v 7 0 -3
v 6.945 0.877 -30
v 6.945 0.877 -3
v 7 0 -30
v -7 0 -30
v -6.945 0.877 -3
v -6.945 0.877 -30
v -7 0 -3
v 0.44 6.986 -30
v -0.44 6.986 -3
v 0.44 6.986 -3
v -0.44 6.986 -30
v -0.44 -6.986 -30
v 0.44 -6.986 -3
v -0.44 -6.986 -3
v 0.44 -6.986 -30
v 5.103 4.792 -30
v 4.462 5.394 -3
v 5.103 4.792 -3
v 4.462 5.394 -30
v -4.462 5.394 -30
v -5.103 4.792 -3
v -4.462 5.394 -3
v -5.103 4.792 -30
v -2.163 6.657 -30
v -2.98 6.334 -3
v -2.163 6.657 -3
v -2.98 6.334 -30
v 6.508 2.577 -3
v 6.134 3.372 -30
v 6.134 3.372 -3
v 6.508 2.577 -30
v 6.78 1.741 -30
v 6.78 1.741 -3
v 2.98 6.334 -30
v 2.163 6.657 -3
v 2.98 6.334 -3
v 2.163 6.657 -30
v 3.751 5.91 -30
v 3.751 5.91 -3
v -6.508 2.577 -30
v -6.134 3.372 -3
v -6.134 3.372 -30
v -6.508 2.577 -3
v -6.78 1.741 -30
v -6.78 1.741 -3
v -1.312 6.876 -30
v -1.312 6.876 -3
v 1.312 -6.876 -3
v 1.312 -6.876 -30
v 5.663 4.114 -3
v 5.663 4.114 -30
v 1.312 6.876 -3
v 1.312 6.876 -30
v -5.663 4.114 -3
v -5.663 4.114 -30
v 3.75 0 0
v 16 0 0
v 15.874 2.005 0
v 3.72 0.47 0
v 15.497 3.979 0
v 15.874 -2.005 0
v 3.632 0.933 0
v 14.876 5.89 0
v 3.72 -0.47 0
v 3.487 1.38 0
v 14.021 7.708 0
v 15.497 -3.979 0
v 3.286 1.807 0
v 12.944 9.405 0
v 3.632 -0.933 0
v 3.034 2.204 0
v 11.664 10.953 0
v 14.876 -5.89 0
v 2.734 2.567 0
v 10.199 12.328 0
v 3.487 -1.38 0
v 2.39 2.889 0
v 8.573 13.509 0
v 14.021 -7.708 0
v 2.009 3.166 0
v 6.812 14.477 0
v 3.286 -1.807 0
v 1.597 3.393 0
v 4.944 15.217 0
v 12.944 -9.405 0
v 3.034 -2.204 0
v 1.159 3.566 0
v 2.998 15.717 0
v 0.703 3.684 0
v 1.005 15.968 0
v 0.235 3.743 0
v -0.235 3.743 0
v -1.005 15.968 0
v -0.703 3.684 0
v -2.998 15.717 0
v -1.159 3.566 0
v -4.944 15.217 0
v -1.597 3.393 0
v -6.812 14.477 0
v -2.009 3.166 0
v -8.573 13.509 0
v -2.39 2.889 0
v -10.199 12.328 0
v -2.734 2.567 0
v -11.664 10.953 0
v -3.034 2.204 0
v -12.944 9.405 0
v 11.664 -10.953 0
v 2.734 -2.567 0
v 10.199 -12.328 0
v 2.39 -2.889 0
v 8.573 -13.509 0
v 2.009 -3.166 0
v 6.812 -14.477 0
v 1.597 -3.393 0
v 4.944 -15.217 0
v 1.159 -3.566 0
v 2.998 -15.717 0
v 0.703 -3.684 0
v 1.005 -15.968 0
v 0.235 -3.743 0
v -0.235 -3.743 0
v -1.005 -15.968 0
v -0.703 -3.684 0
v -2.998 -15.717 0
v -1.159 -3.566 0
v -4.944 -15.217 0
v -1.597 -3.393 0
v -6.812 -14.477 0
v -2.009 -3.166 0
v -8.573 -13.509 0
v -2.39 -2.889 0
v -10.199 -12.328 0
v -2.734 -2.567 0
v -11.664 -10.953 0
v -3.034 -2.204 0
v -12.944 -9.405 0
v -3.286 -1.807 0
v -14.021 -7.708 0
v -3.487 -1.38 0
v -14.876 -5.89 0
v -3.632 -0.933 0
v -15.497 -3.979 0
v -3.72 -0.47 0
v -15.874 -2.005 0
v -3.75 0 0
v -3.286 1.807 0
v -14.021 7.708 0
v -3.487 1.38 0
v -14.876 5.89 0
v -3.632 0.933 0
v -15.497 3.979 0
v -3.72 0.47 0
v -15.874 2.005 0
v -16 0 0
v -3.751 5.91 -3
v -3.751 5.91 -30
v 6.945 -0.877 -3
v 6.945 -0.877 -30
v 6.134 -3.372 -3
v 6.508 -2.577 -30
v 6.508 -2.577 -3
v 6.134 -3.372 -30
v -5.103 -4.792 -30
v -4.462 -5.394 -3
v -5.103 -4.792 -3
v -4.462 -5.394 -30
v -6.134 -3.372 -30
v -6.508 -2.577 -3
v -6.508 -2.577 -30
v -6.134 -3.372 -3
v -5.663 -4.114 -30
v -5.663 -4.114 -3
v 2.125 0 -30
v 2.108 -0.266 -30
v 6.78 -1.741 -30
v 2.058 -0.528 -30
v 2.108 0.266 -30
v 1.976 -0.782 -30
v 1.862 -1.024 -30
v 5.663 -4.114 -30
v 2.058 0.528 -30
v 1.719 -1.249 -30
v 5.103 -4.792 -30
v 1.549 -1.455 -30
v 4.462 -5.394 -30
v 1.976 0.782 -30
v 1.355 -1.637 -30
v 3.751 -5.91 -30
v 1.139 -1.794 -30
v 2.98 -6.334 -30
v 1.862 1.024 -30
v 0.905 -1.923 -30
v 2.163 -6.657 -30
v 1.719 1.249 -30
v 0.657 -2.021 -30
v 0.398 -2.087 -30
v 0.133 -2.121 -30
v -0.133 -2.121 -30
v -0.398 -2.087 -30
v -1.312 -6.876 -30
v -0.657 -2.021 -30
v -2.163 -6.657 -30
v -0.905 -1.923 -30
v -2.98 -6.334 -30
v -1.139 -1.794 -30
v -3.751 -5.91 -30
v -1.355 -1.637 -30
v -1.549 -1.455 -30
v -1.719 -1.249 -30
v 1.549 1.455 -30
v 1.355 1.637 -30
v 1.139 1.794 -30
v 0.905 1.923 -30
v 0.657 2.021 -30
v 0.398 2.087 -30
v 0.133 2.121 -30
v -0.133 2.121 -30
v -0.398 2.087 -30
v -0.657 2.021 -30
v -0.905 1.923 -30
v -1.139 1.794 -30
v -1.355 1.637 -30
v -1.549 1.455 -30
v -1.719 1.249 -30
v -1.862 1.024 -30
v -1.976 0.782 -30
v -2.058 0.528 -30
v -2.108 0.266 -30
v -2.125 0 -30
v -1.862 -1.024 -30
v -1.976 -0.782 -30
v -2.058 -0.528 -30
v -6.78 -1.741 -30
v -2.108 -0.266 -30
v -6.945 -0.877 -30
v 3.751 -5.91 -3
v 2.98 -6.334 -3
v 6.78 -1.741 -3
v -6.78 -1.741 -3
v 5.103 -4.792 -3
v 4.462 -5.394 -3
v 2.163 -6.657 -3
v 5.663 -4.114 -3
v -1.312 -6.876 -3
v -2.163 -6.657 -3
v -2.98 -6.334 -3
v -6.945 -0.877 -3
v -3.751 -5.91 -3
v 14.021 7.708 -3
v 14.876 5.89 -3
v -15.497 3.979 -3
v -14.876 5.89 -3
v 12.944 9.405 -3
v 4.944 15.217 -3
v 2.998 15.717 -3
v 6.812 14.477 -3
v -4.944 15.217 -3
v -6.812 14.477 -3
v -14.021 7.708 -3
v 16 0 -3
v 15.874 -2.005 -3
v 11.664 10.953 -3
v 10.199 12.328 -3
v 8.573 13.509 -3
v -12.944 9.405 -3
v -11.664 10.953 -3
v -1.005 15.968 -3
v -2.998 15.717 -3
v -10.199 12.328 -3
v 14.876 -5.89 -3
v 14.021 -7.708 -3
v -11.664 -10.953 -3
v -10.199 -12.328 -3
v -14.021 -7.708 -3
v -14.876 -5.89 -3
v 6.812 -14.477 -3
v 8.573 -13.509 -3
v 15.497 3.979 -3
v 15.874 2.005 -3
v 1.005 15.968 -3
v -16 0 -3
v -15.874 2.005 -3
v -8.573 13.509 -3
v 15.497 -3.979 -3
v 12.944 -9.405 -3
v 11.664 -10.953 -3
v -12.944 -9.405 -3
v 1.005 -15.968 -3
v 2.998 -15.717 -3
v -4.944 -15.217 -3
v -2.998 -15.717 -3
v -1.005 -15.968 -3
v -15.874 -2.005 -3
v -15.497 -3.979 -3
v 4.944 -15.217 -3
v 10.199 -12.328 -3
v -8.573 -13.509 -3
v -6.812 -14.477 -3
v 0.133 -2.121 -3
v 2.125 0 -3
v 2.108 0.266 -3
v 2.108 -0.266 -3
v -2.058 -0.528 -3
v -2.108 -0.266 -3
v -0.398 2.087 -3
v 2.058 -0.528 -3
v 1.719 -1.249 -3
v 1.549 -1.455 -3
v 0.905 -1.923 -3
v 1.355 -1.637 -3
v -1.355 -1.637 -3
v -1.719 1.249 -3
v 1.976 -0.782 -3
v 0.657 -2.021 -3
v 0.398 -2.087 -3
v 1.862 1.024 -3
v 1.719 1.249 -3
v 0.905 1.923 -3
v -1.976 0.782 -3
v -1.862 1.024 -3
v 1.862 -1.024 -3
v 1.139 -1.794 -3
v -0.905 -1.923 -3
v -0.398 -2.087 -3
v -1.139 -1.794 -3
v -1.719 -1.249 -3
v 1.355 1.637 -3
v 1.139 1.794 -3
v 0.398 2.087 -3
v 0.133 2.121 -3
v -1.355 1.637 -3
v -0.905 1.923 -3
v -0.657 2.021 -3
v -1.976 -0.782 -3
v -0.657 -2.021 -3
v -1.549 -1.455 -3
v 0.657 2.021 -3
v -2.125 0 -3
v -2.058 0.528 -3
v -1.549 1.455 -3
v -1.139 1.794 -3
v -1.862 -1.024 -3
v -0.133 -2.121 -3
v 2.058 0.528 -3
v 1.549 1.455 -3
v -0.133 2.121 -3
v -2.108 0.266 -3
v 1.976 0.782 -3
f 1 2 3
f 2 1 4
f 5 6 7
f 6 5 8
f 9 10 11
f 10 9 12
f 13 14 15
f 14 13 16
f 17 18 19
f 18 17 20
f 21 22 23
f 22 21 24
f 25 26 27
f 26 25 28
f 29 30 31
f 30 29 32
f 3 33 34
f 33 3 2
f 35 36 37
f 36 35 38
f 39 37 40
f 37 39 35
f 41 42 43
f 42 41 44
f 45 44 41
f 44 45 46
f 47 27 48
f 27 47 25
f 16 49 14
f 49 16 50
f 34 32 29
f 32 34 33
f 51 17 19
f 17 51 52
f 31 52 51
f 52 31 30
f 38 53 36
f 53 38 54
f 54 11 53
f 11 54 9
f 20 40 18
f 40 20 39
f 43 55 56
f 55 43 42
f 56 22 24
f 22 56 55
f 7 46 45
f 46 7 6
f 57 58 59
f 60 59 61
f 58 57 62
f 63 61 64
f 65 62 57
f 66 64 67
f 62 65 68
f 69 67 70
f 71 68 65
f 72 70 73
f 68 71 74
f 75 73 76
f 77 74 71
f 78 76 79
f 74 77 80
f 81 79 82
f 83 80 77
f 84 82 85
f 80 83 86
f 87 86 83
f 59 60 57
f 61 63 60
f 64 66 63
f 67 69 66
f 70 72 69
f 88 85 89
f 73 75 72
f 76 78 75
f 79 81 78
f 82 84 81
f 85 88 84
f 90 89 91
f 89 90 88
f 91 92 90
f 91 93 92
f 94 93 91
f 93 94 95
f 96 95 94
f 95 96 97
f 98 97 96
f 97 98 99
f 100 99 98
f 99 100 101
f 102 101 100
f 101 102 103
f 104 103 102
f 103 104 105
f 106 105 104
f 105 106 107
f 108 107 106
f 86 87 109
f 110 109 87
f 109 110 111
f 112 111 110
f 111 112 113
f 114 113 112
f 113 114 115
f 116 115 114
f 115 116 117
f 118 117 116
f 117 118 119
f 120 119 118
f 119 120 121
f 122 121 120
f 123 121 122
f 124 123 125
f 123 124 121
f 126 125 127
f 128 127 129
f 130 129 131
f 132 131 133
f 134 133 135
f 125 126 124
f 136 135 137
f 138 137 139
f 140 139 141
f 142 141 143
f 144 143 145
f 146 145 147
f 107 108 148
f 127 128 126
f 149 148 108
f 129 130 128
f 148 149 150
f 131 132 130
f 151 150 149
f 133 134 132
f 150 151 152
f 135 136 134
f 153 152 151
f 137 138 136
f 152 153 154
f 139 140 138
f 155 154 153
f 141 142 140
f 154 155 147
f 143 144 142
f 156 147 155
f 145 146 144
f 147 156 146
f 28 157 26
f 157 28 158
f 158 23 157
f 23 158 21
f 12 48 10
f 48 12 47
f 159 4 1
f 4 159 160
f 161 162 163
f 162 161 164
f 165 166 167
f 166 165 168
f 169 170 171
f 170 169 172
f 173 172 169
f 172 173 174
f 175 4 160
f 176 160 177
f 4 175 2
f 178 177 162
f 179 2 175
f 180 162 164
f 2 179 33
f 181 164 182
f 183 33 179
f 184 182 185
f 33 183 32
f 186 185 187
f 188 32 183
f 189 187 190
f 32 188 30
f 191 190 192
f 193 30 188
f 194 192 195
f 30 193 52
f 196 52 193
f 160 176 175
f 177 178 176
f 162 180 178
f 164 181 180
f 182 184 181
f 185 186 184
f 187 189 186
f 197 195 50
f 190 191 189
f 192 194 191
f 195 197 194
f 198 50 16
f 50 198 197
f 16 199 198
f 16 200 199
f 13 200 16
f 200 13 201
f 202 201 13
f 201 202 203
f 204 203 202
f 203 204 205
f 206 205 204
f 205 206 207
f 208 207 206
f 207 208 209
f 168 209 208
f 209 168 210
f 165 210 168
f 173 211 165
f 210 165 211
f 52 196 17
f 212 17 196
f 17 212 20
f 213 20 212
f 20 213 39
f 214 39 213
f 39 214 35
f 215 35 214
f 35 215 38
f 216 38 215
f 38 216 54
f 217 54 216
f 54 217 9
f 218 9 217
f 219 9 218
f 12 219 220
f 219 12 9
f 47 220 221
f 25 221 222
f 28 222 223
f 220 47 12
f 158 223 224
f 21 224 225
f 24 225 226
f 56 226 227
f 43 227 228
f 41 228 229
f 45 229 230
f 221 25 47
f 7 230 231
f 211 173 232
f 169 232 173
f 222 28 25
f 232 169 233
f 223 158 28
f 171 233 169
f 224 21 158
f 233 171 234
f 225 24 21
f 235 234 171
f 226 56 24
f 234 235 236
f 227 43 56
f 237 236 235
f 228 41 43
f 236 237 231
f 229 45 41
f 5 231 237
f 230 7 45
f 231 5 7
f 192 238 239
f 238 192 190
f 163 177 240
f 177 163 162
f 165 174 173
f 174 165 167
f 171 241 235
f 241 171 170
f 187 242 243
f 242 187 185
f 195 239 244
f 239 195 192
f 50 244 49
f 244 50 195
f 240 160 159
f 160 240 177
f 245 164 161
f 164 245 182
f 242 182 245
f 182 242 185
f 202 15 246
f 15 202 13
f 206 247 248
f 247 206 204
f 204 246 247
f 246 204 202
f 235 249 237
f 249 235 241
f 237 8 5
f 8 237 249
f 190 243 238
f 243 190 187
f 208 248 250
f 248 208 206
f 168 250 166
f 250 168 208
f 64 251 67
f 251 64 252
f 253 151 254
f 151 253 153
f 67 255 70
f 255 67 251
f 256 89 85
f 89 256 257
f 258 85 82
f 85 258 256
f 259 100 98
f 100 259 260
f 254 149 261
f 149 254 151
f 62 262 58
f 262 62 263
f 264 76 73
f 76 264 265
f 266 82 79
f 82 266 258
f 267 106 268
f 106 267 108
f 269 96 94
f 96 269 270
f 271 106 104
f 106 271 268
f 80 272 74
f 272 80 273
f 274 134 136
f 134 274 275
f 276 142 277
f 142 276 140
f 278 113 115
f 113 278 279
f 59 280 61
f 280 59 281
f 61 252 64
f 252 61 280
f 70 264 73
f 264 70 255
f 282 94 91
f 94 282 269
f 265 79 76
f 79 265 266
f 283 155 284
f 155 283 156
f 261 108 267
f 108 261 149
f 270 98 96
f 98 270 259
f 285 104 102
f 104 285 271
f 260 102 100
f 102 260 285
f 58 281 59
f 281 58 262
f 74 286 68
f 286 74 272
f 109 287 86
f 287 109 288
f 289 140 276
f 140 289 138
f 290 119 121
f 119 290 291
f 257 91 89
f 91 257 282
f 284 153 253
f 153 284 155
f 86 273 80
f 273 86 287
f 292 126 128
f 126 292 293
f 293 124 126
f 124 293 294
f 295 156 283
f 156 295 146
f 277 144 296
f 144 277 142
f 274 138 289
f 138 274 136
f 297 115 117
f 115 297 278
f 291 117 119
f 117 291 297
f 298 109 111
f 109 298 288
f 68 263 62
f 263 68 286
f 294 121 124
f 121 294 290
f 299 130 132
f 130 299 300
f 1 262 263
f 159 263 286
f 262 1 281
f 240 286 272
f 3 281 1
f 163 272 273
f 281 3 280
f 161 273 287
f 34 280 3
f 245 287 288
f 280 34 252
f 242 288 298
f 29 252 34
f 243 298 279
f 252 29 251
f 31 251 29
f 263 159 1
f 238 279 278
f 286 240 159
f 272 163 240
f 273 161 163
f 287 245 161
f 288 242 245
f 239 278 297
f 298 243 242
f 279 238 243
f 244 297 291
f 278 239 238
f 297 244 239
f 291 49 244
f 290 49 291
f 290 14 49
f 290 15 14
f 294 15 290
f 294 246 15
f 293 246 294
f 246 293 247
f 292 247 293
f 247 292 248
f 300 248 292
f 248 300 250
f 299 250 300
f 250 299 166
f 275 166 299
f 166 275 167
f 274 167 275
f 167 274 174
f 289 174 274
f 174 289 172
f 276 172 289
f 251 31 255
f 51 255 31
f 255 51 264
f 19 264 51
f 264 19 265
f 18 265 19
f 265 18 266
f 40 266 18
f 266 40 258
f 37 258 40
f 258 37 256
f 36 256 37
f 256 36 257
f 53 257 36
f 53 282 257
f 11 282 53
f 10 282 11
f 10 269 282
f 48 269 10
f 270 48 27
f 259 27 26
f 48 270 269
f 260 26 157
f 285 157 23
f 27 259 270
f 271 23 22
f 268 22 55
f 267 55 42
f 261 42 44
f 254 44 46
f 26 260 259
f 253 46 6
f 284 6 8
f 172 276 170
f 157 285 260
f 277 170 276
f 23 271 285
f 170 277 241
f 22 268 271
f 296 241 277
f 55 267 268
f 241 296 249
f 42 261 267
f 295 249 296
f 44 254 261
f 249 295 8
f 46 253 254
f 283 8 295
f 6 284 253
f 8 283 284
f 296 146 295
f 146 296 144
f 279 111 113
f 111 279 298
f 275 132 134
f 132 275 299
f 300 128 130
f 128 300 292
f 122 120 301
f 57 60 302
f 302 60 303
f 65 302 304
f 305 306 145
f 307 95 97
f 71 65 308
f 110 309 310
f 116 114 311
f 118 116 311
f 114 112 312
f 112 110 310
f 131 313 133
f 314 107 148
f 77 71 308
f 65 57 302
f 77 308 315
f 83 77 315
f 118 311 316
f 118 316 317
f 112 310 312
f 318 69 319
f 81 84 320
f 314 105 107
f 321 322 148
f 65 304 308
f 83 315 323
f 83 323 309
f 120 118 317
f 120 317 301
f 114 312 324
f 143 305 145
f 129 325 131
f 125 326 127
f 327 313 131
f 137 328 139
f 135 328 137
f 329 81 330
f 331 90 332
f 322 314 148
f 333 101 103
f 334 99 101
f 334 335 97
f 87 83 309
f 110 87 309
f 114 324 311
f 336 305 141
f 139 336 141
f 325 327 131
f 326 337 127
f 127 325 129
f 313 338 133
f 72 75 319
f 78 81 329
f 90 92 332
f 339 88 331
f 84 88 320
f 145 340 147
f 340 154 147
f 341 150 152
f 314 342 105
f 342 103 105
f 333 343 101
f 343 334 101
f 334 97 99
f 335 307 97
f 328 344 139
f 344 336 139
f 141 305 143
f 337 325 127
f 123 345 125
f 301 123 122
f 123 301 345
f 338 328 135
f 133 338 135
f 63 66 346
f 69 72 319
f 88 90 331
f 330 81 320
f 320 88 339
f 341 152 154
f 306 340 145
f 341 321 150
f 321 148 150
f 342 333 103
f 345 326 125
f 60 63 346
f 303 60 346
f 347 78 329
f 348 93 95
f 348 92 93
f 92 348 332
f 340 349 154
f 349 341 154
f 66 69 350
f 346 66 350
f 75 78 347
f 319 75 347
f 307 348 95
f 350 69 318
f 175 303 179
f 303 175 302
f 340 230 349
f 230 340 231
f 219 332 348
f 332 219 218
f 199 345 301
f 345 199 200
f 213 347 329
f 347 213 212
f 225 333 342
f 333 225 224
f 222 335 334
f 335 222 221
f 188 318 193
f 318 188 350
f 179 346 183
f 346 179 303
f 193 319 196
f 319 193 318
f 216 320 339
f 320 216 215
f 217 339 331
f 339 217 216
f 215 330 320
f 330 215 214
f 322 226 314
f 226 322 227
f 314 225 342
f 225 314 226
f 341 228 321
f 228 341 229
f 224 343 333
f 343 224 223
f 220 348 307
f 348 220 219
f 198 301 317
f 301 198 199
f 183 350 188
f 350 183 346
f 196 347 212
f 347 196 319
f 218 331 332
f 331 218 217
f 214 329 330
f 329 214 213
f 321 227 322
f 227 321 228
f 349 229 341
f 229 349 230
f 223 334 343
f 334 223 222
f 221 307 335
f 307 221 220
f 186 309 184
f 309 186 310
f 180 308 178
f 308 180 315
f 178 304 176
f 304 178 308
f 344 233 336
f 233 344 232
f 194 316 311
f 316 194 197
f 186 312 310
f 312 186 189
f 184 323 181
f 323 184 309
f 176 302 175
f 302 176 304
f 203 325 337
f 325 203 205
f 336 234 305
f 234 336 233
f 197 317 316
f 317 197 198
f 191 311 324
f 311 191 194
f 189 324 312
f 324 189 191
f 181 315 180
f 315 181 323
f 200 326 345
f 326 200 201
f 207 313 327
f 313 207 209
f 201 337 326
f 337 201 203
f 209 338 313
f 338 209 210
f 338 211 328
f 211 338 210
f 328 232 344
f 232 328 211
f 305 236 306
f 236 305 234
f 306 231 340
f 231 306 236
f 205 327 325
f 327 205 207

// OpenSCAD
$fn = 50;


difference() {
	union() {
		translate(v = [0, 0, -30.0000000000]) {
			cylinder(h = 30, r = 7.0000000000);
		}
		translate(v = [0, 0, -3.0000000000]) {
			cylinder(h = 3, r = 16.0000000000);
		}
	}
	union() {
		translate(v = [0, 0, 0]) {
			rotate(a = [0, 0, 0]) {
				difference() {
					union() {
						#translate(v = [0, 0, -30.0000000000]) {
							cylinder(h = 30, r = 2.0000000000);
						}
						#translate(v = [0, 0, -3]) {
							cylinder(h = 3, r = 7.0000000000, r1 = 2.1250000000, r2 = 3.7500000000);
						}
						#translate(v = [0, 0, -30.0000000000]) {
							cylinder(h = 30, r = 2.1250000000);
						}
						#translate(v = [0, 0, -30.0000000000]) {
							cylinder(h = 30, r = 2.0000000000);
						}
					}
					union();
				}
			}
		}
	}
}
